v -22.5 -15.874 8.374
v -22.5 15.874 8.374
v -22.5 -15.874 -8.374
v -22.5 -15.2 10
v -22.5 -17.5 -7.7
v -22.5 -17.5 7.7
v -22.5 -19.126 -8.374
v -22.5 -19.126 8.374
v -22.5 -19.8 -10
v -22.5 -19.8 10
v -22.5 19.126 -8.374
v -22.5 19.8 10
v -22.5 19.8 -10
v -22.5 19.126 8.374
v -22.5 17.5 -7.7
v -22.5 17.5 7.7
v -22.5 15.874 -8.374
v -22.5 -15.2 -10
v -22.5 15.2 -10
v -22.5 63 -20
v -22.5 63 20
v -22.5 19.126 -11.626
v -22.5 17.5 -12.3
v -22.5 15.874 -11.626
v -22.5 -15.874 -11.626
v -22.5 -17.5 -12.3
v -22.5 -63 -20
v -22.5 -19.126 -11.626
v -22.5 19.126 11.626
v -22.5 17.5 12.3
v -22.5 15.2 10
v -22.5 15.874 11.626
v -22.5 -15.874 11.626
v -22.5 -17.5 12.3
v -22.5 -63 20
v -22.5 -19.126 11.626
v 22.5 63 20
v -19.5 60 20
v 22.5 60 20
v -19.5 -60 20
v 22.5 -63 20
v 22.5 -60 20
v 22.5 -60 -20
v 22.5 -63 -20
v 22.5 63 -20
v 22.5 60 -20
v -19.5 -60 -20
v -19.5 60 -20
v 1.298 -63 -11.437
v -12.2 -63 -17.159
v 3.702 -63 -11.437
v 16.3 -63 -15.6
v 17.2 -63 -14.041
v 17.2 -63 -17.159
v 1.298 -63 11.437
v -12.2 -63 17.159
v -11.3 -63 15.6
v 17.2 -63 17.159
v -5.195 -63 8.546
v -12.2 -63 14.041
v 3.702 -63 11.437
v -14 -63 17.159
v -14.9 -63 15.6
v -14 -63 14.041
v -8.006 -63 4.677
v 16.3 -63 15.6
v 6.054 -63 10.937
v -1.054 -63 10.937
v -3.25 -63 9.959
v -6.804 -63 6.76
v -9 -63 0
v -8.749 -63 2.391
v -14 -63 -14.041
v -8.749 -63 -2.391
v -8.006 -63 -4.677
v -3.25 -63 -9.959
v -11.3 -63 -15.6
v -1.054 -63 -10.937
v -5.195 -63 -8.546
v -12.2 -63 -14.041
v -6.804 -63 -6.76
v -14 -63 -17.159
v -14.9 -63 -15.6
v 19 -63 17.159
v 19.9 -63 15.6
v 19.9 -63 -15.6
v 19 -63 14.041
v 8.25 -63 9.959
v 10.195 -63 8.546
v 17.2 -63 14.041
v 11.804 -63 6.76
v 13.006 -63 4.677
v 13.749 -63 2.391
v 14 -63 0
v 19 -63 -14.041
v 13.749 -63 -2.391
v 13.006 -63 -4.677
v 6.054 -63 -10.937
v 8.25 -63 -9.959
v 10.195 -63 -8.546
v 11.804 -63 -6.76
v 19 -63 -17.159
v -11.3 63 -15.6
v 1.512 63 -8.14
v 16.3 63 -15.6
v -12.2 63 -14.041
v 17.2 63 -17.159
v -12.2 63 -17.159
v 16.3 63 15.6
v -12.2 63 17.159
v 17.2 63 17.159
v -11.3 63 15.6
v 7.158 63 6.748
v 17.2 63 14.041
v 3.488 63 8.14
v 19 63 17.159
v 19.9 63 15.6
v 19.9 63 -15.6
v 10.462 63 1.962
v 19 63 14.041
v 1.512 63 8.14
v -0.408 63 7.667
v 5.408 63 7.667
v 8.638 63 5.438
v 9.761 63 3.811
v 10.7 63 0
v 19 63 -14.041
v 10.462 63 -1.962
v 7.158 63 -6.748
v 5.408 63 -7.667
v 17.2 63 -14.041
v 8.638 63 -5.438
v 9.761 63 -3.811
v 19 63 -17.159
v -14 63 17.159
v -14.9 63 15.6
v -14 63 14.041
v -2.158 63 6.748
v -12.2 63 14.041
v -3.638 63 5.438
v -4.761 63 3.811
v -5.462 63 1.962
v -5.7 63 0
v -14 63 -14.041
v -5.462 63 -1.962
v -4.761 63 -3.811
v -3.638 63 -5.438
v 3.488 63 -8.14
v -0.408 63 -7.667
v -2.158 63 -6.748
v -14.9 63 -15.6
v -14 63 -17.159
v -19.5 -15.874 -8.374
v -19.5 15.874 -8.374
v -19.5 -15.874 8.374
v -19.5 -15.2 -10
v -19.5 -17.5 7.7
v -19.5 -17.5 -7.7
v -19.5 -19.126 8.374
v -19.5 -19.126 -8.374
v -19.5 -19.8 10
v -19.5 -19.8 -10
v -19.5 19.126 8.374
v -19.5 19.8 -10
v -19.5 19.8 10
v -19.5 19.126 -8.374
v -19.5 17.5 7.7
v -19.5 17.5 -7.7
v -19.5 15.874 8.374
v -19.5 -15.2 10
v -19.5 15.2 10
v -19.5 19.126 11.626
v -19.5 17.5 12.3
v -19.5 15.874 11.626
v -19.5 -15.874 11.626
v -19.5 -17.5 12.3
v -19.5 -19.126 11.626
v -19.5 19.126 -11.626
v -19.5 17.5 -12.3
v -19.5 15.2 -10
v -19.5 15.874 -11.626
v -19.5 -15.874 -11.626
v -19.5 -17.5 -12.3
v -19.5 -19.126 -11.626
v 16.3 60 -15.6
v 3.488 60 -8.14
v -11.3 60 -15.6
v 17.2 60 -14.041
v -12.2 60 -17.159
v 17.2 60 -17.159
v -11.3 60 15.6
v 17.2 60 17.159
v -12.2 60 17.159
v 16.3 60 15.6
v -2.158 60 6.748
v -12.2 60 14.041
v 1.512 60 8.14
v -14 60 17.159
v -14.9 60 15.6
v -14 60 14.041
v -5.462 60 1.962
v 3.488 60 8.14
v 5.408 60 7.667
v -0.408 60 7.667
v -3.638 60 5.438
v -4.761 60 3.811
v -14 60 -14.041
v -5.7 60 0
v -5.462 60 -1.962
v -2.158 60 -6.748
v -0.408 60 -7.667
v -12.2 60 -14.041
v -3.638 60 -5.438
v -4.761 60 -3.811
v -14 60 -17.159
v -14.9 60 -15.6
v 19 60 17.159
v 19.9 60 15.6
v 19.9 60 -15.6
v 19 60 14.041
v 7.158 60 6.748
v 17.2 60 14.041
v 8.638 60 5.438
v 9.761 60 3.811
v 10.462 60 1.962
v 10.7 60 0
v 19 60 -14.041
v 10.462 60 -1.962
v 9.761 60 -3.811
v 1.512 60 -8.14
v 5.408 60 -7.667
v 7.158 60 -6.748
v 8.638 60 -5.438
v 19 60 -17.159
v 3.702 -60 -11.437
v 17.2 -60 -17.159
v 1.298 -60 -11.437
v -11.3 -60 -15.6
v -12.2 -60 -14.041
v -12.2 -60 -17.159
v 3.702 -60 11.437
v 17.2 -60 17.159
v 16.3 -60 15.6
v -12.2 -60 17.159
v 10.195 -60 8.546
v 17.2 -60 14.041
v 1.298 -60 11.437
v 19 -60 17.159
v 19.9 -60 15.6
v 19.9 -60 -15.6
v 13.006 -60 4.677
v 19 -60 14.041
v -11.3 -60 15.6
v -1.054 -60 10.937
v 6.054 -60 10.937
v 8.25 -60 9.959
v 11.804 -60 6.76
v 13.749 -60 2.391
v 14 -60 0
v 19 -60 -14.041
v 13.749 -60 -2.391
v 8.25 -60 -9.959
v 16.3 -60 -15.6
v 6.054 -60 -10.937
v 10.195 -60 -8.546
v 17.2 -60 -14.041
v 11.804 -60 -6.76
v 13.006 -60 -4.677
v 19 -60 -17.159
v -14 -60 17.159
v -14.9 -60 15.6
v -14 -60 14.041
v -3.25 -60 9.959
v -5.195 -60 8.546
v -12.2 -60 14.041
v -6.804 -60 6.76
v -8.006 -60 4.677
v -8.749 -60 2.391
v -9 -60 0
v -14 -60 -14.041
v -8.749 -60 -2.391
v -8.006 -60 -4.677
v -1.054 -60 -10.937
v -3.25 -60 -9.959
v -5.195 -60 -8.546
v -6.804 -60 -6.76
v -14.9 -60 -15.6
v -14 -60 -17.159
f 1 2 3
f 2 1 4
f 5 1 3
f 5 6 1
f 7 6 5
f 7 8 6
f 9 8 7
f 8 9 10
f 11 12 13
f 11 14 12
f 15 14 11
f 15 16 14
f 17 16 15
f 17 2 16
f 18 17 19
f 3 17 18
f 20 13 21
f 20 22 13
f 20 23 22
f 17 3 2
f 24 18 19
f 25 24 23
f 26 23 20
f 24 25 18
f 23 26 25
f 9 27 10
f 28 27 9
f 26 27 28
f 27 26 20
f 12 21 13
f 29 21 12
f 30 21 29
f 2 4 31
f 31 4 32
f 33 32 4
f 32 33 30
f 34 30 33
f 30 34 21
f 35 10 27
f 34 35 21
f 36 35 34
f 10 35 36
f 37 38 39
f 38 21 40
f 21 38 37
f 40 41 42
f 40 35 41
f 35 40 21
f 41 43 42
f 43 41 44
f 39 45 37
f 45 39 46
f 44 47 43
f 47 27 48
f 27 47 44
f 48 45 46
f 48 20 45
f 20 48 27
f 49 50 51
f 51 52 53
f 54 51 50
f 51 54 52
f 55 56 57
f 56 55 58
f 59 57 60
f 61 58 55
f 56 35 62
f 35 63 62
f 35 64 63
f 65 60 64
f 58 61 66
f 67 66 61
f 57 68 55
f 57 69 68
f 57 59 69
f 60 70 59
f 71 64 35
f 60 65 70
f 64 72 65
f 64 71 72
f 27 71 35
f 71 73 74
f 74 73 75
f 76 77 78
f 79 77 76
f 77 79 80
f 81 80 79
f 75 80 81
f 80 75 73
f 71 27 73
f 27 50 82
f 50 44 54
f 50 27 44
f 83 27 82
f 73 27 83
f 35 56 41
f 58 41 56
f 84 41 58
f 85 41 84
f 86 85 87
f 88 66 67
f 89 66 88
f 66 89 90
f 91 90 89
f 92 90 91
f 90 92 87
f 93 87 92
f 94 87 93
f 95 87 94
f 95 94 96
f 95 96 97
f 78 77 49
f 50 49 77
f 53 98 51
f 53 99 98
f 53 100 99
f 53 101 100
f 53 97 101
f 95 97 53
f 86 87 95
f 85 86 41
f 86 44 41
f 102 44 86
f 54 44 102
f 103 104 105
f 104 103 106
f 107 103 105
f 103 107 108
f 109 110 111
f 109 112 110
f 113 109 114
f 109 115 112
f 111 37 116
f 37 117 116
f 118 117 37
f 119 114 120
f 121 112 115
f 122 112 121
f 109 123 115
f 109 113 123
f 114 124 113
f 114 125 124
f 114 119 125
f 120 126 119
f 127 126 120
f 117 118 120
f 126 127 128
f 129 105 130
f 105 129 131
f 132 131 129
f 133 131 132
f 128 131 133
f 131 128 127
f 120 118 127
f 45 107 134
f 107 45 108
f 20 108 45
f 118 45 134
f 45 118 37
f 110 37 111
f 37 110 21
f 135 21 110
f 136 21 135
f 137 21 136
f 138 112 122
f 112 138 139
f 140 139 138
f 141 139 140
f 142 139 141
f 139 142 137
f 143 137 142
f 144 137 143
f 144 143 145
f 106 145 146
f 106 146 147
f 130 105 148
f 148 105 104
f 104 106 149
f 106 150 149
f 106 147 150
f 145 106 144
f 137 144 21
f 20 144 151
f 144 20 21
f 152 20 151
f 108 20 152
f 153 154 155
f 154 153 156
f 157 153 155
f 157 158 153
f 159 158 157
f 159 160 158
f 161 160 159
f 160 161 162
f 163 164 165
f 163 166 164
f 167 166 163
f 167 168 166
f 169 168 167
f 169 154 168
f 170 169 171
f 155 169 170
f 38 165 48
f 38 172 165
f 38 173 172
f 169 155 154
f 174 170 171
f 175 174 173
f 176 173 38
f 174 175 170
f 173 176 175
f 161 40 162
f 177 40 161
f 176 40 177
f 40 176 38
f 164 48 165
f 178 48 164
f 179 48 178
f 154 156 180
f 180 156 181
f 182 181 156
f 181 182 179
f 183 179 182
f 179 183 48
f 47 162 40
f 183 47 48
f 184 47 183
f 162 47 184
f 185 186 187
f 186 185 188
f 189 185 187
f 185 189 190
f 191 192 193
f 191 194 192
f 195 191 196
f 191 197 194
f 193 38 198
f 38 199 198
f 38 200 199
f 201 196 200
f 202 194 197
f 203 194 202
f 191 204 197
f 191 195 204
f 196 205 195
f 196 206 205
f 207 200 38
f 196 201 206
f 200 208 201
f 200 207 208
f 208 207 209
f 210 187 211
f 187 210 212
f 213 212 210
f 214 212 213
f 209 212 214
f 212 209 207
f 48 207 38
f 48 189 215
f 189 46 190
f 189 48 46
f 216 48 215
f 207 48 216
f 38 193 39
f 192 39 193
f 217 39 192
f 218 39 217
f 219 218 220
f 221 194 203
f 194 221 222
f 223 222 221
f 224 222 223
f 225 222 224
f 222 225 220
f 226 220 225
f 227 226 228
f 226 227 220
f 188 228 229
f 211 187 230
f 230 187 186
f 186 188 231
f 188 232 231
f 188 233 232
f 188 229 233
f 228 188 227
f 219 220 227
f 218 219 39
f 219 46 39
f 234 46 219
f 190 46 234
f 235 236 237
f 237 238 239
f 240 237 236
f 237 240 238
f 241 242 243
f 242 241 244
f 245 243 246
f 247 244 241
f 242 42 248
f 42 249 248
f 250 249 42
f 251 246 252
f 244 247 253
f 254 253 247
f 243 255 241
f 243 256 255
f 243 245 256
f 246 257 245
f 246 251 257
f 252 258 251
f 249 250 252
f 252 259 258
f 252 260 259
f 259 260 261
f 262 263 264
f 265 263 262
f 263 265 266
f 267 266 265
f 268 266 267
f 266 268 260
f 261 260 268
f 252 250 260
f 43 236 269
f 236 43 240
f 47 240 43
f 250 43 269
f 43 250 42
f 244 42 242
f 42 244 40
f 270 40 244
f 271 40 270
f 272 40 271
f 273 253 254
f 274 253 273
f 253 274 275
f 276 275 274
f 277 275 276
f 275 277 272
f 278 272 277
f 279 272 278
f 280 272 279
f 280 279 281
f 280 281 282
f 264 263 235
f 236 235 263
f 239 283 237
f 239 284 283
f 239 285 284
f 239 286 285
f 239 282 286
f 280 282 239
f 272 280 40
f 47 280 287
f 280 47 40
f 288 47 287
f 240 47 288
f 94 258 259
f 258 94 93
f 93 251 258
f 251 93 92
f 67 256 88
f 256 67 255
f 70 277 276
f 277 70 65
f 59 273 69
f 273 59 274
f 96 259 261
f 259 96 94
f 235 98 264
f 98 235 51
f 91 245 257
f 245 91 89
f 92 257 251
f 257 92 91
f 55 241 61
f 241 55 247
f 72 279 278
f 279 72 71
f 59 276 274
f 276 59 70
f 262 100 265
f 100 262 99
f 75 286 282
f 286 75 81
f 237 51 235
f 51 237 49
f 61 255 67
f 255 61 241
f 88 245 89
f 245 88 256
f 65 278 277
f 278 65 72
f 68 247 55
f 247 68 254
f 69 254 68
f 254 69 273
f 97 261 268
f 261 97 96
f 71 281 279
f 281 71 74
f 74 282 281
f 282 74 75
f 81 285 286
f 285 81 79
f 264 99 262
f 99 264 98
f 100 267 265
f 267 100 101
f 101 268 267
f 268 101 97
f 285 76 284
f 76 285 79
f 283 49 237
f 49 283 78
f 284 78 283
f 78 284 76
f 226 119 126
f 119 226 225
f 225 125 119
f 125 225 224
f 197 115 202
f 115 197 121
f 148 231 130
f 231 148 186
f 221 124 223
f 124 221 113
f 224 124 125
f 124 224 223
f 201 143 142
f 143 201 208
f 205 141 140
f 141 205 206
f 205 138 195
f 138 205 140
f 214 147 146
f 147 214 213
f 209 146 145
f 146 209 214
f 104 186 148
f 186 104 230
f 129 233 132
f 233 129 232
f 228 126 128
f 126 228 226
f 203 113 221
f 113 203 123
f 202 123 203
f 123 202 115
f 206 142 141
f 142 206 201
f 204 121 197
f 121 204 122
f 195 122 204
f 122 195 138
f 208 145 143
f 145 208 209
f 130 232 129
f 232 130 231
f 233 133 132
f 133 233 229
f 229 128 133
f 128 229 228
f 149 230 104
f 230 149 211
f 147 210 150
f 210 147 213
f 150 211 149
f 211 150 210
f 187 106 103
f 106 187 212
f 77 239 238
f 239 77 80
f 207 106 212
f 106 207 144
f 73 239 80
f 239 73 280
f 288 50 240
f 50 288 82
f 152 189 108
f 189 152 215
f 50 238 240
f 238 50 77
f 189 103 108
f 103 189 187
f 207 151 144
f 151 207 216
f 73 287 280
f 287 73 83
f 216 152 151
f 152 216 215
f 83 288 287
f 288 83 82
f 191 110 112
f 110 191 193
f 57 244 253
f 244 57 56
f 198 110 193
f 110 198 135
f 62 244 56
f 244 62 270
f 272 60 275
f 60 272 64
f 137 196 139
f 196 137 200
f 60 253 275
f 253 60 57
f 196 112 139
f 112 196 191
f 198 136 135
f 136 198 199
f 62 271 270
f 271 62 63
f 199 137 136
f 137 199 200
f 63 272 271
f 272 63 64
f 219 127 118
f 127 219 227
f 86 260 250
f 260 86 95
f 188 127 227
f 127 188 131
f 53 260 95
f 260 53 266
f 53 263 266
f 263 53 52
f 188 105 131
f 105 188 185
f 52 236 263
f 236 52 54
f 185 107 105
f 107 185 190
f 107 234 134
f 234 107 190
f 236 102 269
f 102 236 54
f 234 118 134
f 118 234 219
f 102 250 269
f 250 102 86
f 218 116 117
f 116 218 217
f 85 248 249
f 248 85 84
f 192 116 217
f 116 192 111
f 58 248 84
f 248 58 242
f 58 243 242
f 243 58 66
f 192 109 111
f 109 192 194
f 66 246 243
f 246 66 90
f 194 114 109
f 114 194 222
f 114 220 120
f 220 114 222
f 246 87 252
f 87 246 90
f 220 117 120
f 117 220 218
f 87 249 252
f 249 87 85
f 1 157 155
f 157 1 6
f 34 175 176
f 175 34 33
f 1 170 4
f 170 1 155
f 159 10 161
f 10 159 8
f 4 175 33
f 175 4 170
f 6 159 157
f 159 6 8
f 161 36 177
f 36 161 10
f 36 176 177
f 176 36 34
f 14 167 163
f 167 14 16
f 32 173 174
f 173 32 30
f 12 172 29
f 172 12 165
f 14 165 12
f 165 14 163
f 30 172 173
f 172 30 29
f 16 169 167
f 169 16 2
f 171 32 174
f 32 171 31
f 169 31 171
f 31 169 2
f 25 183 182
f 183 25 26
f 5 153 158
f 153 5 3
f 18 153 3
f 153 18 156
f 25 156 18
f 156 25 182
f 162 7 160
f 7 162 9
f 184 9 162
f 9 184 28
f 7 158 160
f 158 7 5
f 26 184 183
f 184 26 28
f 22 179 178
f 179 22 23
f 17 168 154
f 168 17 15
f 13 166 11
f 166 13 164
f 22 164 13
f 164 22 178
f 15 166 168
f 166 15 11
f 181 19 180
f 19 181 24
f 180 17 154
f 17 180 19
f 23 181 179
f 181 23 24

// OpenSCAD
difference () {
  cube ([45, 126, 40], center=true);
  translate ([1.5, 0, 0]) {
    cube ([42, 120, 40], center=true);
  }
  translate ([2.5, -61.5, 0]) {
    rotate (a=90.0, v=[1, 0, 0]) {
      cylinder (h=3, r=11.5, center=true);
    }
  }
  translate ([2.5, 61.5, 0]) {
    rotate (a=90.0, v=[1, 0, 0]) {
      cylinder (h=3, r=8.2, center=true);
    }
  }
  translate ([-13.1, 0, -15.6]) {
    rotate (a=90.0, v=[1, 0, 0]) {
      cylinder (h=126, r=1.8, center=true);
    }
  }
  translate ([-13.1, 0, 15.6]) {
    rotate (a=90.0, v=[1, 0, 0]) {
      cylinder (h=126, r=1.8, center=true);
    }
  }
  translate ([18.1, 0, -15.6]) {
    rotate (a=90.0, v=[1, 0, 0]) {
      cylinder (h=126, r=1.8, center=true);
    }
  }
  translate ([18.1, 0, 15.6]) {
    rotate (a=90.0, v=[1, 0, 0]) {
      cylinder (h=126, r=1.8, center=true);
    }
  }
  translate ([-21, -17.5, 10]) {
    rotate (a=90.0, v=[0, 1, 0]) {
      cylinder (h=3, r=2.3, center=true);
    }
  }
  translate ([-21, 17.5, 10]) {
    rotate (a=90.0, v=[0, 1, 0]) {
      cylinder (h=3, r=2.3, center=true);
    }
  }
  translate ([-21, -17.5, -10]) {
    rotate (a=90.0, v=[0, 1, 0]) {
      cylinder (h=3, r=2.3, center=true);
    }
  }
  translate ([-21, 17.5, -10]) {
    rotate (a=90.0, v=[0, 1, 0]) {
      cylinder (h=3, r=2.3, center=true);
    }
  }
}
